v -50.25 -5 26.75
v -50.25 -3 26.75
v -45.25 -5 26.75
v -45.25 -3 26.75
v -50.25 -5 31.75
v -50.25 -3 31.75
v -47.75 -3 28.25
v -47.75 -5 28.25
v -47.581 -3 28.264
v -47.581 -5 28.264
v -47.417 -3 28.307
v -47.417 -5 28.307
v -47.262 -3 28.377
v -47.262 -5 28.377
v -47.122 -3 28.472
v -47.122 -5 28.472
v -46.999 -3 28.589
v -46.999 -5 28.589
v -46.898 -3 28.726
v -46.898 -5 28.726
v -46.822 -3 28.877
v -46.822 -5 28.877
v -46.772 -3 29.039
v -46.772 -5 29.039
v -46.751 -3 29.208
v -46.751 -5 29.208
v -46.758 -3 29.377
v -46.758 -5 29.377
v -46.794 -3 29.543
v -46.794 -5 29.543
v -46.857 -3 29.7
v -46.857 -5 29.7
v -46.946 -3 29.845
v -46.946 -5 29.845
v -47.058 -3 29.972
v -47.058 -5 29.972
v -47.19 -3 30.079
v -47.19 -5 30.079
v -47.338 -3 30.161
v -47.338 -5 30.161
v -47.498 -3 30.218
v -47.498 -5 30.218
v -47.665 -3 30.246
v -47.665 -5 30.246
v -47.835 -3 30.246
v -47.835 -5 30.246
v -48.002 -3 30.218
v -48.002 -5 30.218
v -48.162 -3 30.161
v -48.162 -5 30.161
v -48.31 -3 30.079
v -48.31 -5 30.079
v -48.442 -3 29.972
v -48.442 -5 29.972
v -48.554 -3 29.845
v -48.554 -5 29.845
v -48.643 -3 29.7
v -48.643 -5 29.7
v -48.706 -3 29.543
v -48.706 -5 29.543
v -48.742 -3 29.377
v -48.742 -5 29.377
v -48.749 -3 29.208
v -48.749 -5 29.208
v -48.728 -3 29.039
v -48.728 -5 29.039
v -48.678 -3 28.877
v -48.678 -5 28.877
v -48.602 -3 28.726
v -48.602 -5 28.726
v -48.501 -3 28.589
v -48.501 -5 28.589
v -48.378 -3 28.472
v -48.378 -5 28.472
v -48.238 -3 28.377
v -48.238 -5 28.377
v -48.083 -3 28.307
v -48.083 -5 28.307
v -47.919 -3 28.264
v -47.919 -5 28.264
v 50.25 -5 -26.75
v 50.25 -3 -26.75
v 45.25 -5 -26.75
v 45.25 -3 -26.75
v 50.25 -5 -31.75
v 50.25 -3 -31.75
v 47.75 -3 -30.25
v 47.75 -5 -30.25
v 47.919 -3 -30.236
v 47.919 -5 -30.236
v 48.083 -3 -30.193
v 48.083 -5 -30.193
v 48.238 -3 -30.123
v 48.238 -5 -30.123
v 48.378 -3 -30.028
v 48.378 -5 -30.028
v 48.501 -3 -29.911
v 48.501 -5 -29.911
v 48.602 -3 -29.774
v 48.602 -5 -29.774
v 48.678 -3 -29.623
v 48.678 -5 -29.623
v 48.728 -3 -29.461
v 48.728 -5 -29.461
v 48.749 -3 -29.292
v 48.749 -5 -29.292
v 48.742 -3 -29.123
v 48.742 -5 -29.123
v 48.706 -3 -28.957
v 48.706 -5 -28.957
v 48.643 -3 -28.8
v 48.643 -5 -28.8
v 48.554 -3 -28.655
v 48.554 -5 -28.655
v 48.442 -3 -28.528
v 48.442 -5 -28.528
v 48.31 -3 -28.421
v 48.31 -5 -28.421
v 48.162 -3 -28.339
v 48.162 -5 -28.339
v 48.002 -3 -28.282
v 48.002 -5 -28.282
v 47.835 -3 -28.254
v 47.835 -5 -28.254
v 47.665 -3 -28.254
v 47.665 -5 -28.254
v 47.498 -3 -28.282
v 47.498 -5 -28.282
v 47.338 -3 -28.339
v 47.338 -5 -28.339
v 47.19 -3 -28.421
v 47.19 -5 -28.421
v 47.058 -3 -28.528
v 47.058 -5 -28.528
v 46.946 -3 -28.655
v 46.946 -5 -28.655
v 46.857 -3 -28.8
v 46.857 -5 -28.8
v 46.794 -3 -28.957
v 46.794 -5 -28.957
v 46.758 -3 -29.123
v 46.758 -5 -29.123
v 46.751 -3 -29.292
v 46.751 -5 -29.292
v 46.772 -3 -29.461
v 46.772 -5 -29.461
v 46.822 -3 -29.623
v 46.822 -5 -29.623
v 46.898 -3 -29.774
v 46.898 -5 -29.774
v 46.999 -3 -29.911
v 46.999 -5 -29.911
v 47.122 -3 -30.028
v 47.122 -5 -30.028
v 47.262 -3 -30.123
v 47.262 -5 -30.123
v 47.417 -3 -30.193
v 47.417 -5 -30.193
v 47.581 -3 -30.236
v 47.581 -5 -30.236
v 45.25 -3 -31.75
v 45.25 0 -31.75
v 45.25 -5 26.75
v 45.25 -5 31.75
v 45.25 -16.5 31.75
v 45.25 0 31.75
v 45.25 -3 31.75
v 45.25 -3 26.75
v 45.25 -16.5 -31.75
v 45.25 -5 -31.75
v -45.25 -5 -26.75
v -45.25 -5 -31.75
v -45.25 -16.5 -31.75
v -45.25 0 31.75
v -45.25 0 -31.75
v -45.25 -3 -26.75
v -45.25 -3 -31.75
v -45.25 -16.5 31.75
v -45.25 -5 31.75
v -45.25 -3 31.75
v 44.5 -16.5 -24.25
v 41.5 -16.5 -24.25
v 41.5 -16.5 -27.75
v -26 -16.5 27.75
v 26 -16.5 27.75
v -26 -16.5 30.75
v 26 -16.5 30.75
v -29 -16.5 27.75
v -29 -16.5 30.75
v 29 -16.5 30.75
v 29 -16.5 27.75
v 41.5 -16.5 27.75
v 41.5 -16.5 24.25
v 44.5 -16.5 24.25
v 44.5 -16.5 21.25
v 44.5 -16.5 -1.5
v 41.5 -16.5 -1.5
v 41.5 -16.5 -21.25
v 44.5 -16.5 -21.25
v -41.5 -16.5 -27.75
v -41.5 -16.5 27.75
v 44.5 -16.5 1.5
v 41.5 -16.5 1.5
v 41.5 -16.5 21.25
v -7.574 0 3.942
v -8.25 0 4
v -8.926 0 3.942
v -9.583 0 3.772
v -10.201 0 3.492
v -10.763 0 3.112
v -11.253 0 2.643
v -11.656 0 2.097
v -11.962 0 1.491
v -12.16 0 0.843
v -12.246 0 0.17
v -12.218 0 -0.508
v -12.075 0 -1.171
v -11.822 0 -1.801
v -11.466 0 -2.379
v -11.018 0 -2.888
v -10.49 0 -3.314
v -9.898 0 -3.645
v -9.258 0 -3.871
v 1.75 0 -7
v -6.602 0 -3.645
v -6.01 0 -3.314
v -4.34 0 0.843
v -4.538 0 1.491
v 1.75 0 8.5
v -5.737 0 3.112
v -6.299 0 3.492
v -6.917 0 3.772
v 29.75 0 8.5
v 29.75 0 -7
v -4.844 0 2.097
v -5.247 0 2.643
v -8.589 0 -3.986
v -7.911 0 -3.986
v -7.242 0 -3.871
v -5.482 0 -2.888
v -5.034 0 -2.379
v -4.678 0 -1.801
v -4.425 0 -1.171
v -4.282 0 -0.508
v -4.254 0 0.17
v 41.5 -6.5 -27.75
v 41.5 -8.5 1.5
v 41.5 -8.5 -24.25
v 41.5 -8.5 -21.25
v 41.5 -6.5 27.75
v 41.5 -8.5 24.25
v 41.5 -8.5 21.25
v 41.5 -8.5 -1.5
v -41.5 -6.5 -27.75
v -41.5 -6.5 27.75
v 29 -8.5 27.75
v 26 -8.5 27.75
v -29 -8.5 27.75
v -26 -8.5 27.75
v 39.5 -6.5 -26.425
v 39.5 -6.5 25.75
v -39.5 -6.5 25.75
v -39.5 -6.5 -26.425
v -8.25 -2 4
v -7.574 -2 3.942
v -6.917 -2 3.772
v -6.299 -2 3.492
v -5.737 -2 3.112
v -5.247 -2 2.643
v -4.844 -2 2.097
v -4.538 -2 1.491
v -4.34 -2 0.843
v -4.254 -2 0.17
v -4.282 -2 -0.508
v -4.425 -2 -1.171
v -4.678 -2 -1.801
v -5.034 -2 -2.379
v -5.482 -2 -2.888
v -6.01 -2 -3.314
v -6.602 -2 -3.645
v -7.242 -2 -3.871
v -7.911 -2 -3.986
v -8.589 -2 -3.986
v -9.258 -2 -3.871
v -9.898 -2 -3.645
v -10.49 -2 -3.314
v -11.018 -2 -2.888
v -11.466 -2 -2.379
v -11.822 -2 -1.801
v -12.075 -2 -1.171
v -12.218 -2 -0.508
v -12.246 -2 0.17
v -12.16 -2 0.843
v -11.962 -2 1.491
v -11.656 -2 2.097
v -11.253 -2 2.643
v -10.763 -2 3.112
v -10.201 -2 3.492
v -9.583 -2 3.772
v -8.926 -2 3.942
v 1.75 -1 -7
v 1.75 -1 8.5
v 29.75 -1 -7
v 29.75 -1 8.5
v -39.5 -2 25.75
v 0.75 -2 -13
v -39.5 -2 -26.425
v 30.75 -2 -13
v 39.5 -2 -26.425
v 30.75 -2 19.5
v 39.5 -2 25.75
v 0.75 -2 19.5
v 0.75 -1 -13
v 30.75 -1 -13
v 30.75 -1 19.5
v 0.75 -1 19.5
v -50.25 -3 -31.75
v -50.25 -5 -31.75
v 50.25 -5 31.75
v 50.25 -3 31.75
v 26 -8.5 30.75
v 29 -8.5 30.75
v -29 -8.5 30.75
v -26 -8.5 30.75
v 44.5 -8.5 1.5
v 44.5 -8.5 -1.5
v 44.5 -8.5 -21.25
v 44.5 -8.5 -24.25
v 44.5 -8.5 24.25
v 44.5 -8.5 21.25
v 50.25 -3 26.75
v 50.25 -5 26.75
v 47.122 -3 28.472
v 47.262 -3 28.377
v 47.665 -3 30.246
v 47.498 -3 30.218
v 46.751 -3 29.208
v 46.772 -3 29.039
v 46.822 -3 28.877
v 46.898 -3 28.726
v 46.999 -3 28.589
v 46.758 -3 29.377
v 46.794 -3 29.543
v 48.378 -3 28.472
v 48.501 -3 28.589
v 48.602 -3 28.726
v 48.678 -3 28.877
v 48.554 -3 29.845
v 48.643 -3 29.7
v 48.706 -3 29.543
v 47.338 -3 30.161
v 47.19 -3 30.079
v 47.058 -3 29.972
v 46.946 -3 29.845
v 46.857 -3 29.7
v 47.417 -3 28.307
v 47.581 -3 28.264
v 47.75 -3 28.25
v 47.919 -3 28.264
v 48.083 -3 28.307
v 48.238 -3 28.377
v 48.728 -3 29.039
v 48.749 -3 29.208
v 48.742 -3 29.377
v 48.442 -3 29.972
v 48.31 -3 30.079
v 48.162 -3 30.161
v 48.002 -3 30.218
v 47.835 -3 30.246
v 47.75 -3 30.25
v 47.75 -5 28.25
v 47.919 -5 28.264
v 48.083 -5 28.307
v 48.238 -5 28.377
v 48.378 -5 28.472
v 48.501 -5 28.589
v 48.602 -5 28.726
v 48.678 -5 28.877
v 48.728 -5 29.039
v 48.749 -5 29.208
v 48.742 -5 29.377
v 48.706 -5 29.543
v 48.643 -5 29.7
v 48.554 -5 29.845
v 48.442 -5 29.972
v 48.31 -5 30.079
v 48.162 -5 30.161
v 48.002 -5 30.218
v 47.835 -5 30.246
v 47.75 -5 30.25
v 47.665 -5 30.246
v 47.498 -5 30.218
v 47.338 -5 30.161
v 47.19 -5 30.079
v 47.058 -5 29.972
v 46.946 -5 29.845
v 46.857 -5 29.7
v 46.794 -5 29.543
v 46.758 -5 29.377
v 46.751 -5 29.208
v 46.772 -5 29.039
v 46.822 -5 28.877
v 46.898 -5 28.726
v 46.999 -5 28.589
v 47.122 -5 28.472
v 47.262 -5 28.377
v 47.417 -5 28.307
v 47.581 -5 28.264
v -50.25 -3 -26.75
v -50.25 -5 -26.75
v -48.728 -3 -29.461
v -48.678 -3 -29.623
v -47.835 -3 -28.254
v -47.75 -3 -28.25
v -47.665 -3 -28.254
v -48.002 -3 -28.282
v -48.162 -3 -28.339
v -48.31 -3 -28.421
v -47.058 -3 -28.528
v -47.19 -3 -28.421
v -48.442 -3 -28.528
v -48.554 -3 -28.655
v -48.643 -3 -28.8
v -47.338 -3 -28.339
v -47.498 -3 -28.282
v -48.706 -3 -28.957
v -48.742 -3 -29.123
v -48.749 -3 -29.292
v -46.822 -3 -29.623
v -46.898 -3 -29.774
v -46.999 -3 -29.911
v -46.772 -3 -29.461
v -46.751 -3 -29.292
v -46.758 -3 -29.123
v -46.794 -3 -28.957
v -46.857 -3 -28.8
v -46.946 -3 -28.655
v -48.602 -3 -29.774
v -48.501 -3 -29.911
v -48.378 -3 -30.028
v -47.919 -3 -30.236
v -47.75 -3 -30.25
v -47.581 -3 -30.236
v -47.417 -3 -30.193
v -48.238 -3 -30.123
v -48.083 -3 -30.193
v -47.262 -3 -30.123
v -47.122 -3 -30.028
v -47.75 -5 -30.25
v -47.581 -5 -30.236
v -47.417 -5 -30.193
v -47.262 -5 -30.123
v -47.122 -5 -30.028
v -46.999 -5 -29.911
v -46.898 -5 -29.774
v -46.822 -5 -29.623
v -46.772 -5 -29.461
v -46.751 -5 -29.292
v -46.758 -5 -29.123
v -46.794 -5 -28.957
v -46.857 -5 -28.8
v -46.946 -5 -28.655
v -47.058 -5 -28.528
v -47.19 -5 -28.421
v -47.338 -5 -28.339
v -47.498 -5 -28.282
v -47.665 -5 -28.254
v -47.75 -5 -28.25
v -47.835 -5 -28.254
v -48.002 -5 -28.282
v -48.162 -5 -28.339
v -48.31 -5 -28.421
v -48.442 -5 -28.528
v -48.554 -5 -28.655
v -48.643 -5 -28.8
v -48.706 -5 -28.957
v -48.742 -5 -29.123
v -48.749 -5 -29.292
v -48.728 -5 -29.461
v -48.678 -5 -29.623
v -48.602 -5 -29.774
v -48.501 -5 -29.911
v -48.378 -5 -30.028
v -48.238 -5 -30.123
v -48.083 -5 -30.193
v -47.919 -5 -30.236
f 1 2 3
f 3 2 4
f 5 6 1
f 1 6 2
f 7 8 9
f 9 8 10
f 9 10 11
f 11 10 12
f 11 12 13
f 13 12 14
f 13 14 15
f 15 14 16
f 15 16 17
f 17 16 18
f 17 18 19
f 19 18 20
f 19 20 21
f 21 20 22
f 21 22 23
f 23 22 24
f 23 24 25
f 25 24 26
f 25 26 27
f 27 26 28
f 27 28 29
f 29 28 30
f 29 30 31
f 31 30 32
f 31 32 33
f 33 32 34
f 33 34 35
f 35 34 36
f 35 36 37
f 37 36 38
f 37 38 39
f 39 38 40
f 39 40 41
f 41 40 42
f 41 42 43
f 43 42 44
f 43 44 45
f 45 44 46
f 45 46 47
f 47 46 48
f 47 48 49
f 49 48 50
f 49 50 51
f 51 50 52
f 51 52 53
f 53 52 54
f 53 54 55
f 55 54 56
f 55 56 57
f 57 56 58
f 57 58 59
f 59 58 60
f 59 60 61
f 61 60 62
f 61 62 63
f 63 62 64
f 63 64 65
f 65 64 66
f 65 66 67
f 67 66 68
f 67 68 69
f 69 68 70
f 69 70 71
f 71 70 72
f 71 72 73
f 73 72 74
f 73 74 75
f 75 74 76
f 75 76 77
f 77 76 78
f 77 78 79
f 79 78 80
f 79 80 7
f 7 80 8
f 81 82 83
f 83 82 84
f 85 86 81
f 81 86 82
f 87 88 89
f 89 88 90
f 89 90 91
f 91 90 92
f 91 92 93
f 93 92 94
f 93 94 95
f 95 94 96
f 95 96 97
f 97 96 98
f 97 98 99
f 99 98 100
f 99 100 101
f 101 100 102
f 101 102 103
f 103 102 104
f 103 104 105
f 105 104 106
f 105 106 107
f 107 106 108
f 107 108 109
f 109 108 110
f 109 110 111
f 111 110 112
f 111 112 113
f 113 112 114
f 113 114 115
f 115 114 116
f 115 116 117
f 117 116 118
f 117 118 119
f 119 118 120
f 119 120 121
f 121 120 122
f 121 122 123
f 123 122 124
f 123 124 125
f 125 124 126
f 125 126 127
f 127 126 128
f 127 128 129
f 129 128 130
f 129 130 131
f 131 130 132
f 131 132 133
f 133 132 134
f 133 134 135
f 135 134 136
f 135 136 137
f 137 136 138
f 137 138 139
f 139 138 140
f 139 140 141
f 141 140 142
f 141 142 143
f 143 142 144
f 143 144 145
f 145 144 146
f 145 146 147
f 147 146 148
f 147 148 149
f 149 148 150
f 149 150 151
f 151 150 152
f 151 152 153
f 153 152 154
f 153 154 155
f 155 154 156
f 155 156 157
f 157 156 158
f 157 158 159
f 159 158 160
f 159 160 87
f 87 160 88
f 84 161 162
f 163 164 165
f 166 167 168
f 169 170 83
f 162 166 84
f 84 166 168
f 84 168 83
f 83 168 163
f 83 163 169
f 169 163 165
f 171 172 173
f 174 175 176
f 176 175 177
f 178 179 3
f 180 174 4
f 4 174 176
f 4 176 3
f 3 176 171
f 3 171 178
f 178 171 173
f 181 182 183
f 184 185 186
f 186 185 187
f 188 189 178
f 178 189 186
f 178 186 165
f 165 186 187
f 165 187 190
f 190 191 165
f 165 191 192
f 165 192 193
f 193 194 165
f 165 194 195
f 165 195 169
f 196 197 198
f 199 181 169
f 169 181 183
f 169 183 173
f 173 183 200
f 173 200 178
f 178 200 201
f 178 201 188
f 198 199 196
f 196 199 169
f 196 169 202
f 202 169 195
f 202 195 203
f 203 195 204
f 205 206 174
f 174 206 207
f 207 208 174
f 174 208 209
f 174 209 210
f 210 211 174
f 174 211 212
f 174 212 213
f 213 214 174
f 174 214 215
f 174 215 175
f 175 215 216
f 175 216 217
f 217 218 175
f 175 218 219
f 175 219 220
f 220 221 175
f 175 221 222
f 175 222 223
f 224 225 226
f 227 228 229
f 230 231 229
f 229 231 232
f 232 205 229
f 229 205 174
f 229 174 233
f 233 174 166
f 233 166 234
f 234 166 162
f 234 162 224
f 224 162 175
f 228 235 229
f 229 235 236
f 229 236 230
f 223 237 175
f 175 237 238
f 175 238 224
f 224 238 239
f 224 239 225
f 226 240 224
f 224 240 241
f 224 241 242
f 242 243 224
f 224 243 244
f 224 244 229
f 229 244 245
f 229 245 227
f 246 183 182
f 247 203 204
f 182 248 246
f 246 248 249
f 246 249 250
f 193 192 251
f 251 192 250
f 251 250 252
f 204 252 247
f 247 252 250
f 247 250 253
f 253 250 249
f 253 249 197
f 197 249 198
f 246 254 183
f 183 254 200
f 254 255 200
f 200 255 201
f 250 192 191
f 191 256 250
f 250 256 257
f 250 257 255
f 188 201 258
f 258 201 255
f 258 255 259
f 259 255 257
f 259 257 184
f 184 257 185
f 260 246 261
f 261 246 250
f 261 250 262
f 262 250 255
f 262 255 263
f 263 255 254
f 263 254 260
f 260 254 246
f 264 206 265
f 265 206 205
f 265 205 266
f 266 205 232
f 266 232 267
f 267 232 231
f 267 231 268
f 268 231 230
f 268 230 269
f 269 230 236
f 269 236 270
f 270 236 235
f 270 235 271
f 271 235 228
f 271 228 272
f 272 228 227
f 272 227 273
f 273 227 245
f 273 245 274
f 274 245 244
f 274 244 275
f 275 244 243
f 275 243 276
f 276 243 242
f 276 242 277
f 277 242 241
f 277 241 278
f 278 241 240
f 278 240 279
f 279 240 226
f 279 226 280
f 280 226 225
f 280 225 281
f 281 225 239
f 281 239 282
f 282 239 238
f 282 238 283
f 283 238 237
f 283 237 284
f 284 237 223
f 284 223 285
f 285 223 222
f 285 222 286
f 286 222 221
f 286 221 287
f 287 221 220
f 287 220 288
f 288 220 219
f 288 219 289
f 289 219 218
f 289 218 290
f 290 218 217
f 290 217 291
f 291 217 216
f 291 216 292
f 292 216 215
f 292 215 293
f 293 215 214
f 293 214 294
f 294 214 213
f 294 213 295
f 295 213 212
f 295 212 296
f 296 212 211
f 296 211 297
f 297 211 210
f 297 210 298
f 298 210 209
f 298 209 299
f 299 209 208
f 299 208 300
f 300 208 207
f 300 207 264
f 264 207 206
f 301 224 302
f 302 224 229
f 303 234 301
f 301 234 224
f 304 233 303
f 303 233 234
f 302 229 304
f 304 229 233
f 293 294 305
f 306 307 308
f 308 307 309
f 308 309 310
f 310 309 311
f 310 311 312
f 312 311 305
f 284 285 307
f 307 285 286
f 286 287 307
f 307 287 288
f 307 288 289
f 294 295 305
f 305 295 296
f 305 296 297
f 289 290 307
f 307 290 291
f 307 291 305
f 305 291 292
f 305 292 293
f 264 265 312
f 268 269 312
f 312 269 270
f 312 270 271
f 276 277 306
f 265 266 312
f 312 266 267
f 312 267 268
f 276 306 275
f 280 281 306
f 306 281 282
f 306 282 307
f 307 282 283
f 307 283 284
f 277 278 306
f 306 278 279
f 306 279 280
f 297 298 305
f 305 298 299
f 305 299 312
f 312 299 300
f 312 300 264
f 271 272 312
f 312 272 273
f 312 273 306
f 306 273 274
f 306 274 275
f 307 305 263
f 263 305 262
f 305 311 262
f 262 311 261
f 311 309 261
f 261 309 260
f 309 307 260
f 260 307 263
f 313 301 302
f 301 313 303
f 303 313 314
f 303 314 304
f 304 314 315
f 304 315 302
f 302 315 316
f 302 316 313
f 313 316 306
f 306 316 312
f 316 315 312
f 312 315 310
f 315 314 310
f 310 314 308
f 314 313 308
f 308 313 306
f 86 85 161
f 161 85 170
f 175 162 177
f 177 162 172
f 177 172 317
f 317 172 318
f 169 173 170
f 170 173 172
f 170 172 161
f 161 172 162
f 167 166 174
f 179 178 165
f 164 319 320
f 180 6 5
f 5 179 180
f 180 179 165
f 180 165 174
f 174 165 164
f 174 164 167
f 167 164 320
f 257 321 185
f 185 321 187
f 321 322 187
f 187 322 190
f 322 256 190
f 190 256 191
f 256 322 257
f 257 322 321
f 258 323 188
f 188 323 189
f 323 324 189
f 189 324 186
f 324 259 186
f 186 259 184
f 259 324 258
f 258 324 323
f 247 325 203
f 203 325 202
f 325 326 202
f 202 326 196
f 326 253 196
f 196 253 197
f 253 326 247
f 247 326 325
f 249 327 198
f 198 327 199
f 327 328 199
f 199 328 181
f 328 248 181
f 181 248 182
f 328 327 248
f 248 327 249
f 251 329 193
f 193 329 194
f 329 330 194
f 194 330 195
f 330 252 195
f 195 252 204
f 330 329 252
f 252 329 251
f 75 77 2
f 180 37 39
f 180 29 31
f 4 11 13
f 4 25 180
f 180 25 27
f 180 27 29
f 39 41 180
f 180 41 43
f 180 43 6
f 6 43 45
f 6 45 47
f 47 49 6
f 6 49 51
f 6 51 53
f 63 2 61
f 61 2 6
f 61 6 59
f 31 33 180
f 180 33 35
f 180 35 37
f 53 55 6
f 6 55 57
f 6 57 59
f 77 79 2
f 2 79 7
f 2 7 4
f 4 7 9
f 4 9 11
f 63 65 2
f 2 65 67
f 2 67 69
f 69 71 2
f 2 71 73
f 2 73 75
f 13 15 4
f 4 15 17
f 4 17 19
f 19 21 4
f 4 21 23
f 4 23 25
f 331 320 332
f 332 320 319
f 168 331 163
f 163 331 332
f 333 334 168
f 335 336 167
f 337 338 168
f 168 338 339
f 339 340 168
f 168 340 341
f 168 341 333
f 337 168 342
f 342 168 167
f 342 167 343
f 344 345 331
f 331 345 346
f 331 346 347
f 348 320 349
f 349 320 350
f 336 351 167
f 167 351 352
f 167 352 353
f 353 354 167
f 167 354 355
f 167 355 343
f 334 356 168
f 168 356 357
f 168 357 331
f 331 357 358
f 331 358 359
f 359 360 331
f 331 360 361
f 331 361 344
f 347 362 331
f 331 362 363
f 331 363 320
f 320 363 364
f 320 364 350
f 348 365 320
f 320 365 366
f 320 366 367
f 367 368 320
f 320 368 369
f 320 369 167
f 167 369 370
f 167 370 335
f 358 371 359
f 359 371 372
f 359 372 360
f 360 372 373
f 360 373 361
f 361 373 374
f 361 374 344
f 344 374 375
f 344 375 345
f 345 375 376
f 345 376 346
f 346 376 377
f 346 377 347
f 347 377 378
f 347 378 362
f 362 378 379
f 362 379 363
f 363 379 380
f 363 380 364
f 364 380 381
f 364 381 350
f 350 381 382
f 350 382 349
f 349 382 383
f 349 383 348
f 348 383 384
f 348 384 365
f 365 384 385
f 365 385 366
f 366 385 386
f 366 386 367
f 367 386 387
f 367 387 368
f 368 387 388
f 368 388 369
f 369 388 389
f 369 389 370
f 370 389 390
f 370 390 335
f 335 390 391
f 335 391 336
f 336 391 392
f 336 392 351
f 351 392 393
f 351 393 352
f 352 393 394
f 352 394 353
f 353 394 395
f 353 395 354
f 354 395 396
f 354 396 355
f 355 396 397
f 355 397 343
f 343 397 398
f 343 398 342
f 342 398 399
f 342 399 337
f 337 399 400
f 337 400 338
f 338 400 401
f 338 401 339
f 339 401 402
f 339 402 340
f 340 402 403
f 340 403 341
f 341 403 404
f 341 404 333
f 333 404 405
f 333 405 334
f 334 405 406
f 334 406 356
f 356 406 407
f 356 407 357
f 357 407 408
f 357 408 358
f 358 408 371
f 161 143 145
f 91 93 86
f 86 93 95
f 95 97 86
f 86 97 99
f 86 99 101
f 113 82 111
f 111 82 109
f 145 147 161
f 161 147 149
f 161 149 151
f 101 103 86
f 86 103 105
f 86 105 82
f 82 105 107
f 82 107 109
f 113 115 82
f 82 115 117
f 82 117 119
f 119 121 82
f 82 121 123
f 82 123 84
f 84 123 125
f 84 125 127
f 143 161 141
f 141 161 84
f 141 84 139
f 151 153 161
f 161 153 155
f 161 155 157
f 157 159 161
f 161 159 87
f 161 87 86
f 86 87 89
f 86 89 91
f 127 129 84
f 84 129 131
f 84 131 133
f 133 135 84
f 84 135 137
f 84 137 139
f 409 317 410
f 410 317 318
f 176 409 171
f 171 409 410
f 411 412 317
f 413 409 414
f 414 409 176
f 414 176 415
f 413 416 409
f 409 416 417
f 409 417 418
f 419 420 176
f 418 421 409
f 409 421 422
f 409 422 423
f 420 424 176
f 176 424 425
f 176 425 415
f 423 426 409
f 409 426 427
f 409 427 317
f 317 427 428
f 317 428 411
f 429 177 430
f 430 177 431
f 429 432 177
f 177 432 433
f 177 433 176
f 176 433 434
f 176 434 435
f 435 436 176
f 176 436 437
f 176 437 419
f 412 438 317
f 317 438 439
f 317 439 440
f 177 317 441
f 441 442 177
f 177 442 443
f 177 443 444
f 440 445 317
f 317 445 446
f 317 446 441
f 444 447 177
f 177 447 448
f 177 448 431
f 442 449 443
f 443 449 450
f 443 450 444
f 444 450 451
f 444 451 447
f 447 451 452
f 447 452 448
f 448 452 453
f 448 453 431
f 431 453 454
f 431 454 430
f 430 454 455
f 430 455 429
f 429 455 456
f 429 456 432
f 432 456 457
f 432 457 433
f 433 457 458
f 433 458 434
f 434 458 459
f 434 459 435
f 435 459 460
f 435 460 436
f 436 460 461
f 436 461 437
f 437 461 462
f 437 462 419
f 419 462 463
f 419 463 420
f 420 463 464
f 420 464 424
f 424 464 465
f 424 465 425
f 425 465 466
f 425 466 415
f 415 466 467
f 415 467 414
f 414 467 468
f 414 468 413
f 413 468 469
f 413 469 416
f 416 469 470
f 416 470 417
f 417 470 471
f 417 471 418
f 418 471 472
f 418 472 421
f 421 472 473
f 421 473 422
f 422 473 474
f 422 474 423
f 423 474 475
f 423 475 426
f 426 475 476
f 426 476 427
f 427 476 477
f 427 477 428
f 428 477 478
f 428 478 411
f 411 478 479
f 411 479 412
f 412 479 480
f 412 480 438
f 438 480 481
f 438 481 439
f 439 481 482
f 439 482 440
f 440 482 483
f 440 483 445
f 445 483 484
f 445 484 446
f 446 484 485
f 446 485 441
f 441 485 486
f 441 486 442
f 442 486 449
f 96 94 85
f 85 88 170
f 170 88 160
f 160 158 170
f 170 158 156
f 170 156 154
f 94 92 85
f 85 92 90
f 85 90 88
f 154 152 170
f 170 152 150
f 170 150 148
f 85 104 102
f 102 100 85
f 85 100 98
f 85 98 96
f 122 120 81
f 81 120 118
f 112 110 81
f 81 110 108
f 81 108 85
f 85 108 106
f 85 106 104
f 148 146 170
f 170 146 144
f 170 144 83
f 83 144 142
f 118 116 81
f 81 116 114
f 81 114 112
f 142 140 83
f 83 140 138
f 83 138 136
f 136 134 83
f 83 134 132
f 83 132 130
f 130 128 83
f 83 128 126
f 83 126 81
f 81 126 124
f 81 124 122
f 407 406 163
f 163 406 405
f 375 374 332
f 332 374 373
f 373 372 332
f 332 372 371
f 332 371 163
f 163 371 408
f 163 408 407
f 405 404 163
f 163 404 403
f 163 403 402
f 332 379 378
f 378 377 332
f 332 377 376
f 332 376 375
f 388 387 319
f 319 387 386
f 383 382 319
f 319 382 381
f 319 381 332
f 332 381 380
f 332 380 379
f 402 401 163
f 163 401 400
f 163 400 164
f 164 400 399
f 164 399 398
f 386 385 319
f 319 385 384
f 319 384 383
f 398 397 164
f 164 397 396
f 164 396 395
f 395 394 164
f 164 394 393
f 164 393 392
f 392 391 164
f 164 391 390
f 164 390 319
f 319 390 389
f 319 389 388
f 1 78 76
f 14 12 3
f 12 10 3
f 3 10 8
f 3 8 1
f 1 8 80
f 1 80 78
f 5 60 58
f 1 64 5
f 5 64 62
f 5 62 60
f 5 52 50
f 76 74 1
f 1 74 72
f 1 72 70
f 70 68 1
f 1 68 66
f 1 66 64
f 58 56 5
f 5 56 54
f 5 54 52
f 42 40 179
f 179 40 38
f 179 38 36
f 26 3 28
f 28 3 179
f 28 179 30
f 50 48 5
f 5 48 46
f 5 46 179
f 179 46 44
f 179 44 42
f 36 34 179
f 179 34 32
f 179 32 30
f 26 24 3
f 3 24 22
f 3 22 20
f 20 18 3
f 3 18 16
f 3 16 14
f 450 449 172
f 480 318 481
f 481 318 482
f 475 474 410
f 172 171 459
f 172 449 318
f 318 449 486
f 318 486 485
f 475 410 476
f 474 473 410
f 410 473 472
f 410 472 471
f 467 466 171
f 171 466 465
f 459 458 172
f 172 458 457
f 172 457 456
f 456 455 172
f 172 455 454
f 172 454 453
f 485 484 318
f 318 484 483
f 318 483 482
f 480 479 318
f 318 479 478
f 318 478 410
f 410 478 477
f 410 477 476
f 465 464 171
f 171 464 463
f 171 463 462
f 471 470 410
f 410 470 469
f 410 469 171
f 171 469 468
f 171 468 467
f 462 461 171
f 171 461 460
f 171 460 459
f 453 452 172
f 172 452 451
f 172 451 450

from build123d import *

# Parameters (mm, degrees)
SKETCH1_W           = 86.5
SKETCH1_H           = 59.5
BOSS_EXTRUDE3_DEPTH = 16.5
SKETCH5_W           = 83
SKETCH5_H           = 55.5
CUT_EXTRUDE2_DEPTH  = 10
SKETCH6_R           = 4
SKETCH6_W           = 28
SKETCH6_H           = 15.5
CUT_EXTRUDE5_DEPTH  = 6.5
SKETCH10_W          = 79
SKETCH10_H          = 52.175170105
CUT_EXTRUDE7_DEPTH  = 4.5
SKETCH12_W          = 30
SKETCH12_H          = 32.5
CUT_EXTRUDE9_DEPTH  = 1
SKETCH15_W          = 90.5
SKETCH15_H          = 63.5
SKETCH15_W_2        = 86.5
SKETCH15_H_2        = 59.5
BOSS_EXTRUDE4_DEPTH = 16.5
SKETCH16_W          = 3
SKETCH16_H          = 3
CUT_EXTRUDE11_DEPTH = 8
SKETCH21_W          = 5
SKETCH21_H          = 5
SKETCH21_R          = 1
BOSS_EXTRUDE6_DEPTH = 13.5
SKETCH23_W          = 5
SKETCH23_H          = 5
CUT_EXTRUDE12_DEPTH = 11.5
SKETCH24_W          = 5
SKETCH24_H          = 5
CUT_EXTRUDE13_DEPTH = 11.5
SKETCH25_W          = 5
SKETCH25_H          = 5
CUT_EXTRUDE14_DEPTH = 11.5
SKETCH26_W          = 5
SKETCH26_H          = 5
CUT_EXTRUDE15_DEPTH = 11.5


with BuildPart() as part:
    # Sketch1 → Boss-Extrude3 (new body)
    with BuildSketch(Plane(origin=(0, 0, 0), x_dir=(1, 0, 0), z_dir=(0, 1, 0))):
        Rectangle(SKETCH1_W, SKETCH1_H)
    extrude(amount=-BOSS_EXTRUDE3_DEPTH)

    # Sketch5 → Cut-Extrude2 (cut)
    with BuildSketch(Plane.XZ.offset(16.5)):
        Rectangle(SKETCH5_W, SKETCH5_H)
    extrude(amount=-CUT_EXTRUDE2_DEPTH, mode=Mode.SUBTRACT)

    # Sketch6 → Cut-Extrude5 (cut)
    with BuildSketch(Plane(origin=(0, 0, 0), x_dir=(1, 0, 0), z_dir=(0, 1, 0))):
        with Locations(Location((-8.25, 0, 0), (0, 0, 270))):
            Circle(SKETCH6_R)
        with Locations((15.75, -0.75)):
            Rectangle(SKETCH6_W, SKETCH6_H)
    extrude(amount=-CUT_EXTRUDE5_DEPTH, mode=Mode.SUBTRACT)

    # Sketch10 → Cut-Extrude7 (cut)
    with BuildSketch(Plane.XZ.offset(6.5)):
        with Locations((0, -0.337585053)):
            Rectangle(SKETCH10_W, SKETCH10_H)
    extrude(amount=-CUT_EXTRUDE7_DEPTH, mode=Mode.SUBTRACT)

    # Sketch12 → Cut-Extrude9 (cut)
    with BuildSketch(Plane.XZ.offset(2)):
        with Locations((15.75, 3.25)):
            Rectangle(SKETCH12_W, SKETCH12_H)
    extrude(amount=-CUT_EXTRUDE9_DEPTH, mode=Mode.SUBTRACT)

    # Sketch15 → Boss-Extrude4 (add)
    with BuildSketch(Plane.XZ.offset(16.5)):
        Rectangle(SKETCH15_W, SKETCH15_H)
        Rectangle(SKETCH15_W_2, SKETCH15_H_2, mode=Mode.SUBTRACT)
    extrude(amount=-BOSS_EXTRUDE4_DEPTH)

    # Sketch16 → Cut-Extrude11 (cut)
    with BuildSketch(Plane.XZ.offset(16.5)):
        with Locations((-27.5, 29.25)):
            Rectangle(SKETCH16_W, SKETCH16_H)
        with Locations((27.5, 29.25)):
            Rectangle(SKETCH16_W, SKETCH16_H)
        with Locations((43, 22.75)):
            Rectangle(SKETCH16_W, SKETCH16_H)
        with Locations((43, -22.75)):
            Rectangle(SKETCH16_W, SKETCH16_H)
        with Locations((43, 0)):
            Rectangle(SKETCH16_W, SKETCH16_H)
    extrude(amount=-CUT_EXTRUDE11_DEPTH, mode=Mode.SUBTRACT)

    # Sketch21 → Boss-Extrude6 (add)
    # profile 1 of 4: a face of its own
    with BuildSketch(Plane.XZ.offset(16.5)):
        with Locations((-47.75, 29.25)):
            Rectangle(SKETCH21_W, SKETCH21_H)
        with Locations(Location((-47.75, 29.25, 0), (0, 0, 270))):
            Circle(SKETCH21_R, mode=Mode.SUBTRACT)
    # profile 2 of 4: a face of its own
    with BuildSketch(Plane.XZ.offset(16.5)):
        with Locations((47.75, 29.25)):
            Rectangle(SKETCH21_W, SKETCH21_H)
        with Locations(Location((47.75, 29.25, 0), (0, 0, 90))):
            Circle(SKETCH21_R, mode=Mode.SUBTRACT)
    # profile 3 of 4: a face of its own
    with BuildSketch(Plane.XZ.offset(16.5)):
        with Locations((47.75, -29.25)):
            Rectangle(SKETCH21_W, SKETCH21_H)
        with Locations(Location((47.75, -29.25, 0), (0, 0, 270))):
            Circle(SKETCH21_R, mode=Mode.SUBTRACT)
    # profile 4 of 4: a face of its own
    with BuildSketch(Plane.XZ.offset(16.5)):
        with Locations((-47.75, -29.25)):
            Rectangle(SKETCH21_W, SKETCH21_H)
        with Locations(Location((-47.75, -29.25, 0), (0, 0, 90))):
            Circle(SKETCH21_R, mode=Mode.SUBTRACT)
    extrude(amount=-BOSS_EXTRUDE6_DEPTH)

    # Sketch23 → Cut-Extrude12 (cut)
    with BuildSketch(Plane(origin=(0, -16.5, 0), x_dir=(-1, 0, 0), z_dir=(0, -1, 0))):
        with Locations((-47.75, 29.25)):
            Rectangle(SKETCH23_W, SKETCH23_H)
    extrude(amount=-CUT_EXTRUDE12_DEPTH, mode=Mode.SUBTRACT)

    # Sketch24 → Cut-Extrude13 (cut)
    with BuildSketch(Plane.XZ.offset(16.5)):
        with Locations((47.75, 29.25)):
            Rectangle(SKETCH24_W, SKETCH24_H)
    extrude(amount=-CUT_EXTRUDE13_DEPTH, mode=Mode.SUBTRACT)

    # Sketch25 → Cut-Extrude14 (cut)
    with BuildSketch(Plane.XZ.offset(16.5)):
        with Locations((-47.75, 29.25)):
            Rectangle(SKETCH25_W, SKETCH25_H)
    extrude(amount=-CUT_EXTRUDE14_DEPTH, mode=Mode.SUBTRACT)

    # Sketch26 → Cut-Extrude15 (cut)
    with BuildSketch(Plane(origin=(0, -16.5, 0), x_dir=(-1, 0, 0), z_dir=(0, -1, 0))):
        with Locations((47.75, 29.25)):
            Rectangle(SKETCH26_W, SKETCH26_H)
    extrude(amount=-CUT_EXTRUDE15_DEPTH, mode=Mode.SUBTRACT)


solid = part.part
